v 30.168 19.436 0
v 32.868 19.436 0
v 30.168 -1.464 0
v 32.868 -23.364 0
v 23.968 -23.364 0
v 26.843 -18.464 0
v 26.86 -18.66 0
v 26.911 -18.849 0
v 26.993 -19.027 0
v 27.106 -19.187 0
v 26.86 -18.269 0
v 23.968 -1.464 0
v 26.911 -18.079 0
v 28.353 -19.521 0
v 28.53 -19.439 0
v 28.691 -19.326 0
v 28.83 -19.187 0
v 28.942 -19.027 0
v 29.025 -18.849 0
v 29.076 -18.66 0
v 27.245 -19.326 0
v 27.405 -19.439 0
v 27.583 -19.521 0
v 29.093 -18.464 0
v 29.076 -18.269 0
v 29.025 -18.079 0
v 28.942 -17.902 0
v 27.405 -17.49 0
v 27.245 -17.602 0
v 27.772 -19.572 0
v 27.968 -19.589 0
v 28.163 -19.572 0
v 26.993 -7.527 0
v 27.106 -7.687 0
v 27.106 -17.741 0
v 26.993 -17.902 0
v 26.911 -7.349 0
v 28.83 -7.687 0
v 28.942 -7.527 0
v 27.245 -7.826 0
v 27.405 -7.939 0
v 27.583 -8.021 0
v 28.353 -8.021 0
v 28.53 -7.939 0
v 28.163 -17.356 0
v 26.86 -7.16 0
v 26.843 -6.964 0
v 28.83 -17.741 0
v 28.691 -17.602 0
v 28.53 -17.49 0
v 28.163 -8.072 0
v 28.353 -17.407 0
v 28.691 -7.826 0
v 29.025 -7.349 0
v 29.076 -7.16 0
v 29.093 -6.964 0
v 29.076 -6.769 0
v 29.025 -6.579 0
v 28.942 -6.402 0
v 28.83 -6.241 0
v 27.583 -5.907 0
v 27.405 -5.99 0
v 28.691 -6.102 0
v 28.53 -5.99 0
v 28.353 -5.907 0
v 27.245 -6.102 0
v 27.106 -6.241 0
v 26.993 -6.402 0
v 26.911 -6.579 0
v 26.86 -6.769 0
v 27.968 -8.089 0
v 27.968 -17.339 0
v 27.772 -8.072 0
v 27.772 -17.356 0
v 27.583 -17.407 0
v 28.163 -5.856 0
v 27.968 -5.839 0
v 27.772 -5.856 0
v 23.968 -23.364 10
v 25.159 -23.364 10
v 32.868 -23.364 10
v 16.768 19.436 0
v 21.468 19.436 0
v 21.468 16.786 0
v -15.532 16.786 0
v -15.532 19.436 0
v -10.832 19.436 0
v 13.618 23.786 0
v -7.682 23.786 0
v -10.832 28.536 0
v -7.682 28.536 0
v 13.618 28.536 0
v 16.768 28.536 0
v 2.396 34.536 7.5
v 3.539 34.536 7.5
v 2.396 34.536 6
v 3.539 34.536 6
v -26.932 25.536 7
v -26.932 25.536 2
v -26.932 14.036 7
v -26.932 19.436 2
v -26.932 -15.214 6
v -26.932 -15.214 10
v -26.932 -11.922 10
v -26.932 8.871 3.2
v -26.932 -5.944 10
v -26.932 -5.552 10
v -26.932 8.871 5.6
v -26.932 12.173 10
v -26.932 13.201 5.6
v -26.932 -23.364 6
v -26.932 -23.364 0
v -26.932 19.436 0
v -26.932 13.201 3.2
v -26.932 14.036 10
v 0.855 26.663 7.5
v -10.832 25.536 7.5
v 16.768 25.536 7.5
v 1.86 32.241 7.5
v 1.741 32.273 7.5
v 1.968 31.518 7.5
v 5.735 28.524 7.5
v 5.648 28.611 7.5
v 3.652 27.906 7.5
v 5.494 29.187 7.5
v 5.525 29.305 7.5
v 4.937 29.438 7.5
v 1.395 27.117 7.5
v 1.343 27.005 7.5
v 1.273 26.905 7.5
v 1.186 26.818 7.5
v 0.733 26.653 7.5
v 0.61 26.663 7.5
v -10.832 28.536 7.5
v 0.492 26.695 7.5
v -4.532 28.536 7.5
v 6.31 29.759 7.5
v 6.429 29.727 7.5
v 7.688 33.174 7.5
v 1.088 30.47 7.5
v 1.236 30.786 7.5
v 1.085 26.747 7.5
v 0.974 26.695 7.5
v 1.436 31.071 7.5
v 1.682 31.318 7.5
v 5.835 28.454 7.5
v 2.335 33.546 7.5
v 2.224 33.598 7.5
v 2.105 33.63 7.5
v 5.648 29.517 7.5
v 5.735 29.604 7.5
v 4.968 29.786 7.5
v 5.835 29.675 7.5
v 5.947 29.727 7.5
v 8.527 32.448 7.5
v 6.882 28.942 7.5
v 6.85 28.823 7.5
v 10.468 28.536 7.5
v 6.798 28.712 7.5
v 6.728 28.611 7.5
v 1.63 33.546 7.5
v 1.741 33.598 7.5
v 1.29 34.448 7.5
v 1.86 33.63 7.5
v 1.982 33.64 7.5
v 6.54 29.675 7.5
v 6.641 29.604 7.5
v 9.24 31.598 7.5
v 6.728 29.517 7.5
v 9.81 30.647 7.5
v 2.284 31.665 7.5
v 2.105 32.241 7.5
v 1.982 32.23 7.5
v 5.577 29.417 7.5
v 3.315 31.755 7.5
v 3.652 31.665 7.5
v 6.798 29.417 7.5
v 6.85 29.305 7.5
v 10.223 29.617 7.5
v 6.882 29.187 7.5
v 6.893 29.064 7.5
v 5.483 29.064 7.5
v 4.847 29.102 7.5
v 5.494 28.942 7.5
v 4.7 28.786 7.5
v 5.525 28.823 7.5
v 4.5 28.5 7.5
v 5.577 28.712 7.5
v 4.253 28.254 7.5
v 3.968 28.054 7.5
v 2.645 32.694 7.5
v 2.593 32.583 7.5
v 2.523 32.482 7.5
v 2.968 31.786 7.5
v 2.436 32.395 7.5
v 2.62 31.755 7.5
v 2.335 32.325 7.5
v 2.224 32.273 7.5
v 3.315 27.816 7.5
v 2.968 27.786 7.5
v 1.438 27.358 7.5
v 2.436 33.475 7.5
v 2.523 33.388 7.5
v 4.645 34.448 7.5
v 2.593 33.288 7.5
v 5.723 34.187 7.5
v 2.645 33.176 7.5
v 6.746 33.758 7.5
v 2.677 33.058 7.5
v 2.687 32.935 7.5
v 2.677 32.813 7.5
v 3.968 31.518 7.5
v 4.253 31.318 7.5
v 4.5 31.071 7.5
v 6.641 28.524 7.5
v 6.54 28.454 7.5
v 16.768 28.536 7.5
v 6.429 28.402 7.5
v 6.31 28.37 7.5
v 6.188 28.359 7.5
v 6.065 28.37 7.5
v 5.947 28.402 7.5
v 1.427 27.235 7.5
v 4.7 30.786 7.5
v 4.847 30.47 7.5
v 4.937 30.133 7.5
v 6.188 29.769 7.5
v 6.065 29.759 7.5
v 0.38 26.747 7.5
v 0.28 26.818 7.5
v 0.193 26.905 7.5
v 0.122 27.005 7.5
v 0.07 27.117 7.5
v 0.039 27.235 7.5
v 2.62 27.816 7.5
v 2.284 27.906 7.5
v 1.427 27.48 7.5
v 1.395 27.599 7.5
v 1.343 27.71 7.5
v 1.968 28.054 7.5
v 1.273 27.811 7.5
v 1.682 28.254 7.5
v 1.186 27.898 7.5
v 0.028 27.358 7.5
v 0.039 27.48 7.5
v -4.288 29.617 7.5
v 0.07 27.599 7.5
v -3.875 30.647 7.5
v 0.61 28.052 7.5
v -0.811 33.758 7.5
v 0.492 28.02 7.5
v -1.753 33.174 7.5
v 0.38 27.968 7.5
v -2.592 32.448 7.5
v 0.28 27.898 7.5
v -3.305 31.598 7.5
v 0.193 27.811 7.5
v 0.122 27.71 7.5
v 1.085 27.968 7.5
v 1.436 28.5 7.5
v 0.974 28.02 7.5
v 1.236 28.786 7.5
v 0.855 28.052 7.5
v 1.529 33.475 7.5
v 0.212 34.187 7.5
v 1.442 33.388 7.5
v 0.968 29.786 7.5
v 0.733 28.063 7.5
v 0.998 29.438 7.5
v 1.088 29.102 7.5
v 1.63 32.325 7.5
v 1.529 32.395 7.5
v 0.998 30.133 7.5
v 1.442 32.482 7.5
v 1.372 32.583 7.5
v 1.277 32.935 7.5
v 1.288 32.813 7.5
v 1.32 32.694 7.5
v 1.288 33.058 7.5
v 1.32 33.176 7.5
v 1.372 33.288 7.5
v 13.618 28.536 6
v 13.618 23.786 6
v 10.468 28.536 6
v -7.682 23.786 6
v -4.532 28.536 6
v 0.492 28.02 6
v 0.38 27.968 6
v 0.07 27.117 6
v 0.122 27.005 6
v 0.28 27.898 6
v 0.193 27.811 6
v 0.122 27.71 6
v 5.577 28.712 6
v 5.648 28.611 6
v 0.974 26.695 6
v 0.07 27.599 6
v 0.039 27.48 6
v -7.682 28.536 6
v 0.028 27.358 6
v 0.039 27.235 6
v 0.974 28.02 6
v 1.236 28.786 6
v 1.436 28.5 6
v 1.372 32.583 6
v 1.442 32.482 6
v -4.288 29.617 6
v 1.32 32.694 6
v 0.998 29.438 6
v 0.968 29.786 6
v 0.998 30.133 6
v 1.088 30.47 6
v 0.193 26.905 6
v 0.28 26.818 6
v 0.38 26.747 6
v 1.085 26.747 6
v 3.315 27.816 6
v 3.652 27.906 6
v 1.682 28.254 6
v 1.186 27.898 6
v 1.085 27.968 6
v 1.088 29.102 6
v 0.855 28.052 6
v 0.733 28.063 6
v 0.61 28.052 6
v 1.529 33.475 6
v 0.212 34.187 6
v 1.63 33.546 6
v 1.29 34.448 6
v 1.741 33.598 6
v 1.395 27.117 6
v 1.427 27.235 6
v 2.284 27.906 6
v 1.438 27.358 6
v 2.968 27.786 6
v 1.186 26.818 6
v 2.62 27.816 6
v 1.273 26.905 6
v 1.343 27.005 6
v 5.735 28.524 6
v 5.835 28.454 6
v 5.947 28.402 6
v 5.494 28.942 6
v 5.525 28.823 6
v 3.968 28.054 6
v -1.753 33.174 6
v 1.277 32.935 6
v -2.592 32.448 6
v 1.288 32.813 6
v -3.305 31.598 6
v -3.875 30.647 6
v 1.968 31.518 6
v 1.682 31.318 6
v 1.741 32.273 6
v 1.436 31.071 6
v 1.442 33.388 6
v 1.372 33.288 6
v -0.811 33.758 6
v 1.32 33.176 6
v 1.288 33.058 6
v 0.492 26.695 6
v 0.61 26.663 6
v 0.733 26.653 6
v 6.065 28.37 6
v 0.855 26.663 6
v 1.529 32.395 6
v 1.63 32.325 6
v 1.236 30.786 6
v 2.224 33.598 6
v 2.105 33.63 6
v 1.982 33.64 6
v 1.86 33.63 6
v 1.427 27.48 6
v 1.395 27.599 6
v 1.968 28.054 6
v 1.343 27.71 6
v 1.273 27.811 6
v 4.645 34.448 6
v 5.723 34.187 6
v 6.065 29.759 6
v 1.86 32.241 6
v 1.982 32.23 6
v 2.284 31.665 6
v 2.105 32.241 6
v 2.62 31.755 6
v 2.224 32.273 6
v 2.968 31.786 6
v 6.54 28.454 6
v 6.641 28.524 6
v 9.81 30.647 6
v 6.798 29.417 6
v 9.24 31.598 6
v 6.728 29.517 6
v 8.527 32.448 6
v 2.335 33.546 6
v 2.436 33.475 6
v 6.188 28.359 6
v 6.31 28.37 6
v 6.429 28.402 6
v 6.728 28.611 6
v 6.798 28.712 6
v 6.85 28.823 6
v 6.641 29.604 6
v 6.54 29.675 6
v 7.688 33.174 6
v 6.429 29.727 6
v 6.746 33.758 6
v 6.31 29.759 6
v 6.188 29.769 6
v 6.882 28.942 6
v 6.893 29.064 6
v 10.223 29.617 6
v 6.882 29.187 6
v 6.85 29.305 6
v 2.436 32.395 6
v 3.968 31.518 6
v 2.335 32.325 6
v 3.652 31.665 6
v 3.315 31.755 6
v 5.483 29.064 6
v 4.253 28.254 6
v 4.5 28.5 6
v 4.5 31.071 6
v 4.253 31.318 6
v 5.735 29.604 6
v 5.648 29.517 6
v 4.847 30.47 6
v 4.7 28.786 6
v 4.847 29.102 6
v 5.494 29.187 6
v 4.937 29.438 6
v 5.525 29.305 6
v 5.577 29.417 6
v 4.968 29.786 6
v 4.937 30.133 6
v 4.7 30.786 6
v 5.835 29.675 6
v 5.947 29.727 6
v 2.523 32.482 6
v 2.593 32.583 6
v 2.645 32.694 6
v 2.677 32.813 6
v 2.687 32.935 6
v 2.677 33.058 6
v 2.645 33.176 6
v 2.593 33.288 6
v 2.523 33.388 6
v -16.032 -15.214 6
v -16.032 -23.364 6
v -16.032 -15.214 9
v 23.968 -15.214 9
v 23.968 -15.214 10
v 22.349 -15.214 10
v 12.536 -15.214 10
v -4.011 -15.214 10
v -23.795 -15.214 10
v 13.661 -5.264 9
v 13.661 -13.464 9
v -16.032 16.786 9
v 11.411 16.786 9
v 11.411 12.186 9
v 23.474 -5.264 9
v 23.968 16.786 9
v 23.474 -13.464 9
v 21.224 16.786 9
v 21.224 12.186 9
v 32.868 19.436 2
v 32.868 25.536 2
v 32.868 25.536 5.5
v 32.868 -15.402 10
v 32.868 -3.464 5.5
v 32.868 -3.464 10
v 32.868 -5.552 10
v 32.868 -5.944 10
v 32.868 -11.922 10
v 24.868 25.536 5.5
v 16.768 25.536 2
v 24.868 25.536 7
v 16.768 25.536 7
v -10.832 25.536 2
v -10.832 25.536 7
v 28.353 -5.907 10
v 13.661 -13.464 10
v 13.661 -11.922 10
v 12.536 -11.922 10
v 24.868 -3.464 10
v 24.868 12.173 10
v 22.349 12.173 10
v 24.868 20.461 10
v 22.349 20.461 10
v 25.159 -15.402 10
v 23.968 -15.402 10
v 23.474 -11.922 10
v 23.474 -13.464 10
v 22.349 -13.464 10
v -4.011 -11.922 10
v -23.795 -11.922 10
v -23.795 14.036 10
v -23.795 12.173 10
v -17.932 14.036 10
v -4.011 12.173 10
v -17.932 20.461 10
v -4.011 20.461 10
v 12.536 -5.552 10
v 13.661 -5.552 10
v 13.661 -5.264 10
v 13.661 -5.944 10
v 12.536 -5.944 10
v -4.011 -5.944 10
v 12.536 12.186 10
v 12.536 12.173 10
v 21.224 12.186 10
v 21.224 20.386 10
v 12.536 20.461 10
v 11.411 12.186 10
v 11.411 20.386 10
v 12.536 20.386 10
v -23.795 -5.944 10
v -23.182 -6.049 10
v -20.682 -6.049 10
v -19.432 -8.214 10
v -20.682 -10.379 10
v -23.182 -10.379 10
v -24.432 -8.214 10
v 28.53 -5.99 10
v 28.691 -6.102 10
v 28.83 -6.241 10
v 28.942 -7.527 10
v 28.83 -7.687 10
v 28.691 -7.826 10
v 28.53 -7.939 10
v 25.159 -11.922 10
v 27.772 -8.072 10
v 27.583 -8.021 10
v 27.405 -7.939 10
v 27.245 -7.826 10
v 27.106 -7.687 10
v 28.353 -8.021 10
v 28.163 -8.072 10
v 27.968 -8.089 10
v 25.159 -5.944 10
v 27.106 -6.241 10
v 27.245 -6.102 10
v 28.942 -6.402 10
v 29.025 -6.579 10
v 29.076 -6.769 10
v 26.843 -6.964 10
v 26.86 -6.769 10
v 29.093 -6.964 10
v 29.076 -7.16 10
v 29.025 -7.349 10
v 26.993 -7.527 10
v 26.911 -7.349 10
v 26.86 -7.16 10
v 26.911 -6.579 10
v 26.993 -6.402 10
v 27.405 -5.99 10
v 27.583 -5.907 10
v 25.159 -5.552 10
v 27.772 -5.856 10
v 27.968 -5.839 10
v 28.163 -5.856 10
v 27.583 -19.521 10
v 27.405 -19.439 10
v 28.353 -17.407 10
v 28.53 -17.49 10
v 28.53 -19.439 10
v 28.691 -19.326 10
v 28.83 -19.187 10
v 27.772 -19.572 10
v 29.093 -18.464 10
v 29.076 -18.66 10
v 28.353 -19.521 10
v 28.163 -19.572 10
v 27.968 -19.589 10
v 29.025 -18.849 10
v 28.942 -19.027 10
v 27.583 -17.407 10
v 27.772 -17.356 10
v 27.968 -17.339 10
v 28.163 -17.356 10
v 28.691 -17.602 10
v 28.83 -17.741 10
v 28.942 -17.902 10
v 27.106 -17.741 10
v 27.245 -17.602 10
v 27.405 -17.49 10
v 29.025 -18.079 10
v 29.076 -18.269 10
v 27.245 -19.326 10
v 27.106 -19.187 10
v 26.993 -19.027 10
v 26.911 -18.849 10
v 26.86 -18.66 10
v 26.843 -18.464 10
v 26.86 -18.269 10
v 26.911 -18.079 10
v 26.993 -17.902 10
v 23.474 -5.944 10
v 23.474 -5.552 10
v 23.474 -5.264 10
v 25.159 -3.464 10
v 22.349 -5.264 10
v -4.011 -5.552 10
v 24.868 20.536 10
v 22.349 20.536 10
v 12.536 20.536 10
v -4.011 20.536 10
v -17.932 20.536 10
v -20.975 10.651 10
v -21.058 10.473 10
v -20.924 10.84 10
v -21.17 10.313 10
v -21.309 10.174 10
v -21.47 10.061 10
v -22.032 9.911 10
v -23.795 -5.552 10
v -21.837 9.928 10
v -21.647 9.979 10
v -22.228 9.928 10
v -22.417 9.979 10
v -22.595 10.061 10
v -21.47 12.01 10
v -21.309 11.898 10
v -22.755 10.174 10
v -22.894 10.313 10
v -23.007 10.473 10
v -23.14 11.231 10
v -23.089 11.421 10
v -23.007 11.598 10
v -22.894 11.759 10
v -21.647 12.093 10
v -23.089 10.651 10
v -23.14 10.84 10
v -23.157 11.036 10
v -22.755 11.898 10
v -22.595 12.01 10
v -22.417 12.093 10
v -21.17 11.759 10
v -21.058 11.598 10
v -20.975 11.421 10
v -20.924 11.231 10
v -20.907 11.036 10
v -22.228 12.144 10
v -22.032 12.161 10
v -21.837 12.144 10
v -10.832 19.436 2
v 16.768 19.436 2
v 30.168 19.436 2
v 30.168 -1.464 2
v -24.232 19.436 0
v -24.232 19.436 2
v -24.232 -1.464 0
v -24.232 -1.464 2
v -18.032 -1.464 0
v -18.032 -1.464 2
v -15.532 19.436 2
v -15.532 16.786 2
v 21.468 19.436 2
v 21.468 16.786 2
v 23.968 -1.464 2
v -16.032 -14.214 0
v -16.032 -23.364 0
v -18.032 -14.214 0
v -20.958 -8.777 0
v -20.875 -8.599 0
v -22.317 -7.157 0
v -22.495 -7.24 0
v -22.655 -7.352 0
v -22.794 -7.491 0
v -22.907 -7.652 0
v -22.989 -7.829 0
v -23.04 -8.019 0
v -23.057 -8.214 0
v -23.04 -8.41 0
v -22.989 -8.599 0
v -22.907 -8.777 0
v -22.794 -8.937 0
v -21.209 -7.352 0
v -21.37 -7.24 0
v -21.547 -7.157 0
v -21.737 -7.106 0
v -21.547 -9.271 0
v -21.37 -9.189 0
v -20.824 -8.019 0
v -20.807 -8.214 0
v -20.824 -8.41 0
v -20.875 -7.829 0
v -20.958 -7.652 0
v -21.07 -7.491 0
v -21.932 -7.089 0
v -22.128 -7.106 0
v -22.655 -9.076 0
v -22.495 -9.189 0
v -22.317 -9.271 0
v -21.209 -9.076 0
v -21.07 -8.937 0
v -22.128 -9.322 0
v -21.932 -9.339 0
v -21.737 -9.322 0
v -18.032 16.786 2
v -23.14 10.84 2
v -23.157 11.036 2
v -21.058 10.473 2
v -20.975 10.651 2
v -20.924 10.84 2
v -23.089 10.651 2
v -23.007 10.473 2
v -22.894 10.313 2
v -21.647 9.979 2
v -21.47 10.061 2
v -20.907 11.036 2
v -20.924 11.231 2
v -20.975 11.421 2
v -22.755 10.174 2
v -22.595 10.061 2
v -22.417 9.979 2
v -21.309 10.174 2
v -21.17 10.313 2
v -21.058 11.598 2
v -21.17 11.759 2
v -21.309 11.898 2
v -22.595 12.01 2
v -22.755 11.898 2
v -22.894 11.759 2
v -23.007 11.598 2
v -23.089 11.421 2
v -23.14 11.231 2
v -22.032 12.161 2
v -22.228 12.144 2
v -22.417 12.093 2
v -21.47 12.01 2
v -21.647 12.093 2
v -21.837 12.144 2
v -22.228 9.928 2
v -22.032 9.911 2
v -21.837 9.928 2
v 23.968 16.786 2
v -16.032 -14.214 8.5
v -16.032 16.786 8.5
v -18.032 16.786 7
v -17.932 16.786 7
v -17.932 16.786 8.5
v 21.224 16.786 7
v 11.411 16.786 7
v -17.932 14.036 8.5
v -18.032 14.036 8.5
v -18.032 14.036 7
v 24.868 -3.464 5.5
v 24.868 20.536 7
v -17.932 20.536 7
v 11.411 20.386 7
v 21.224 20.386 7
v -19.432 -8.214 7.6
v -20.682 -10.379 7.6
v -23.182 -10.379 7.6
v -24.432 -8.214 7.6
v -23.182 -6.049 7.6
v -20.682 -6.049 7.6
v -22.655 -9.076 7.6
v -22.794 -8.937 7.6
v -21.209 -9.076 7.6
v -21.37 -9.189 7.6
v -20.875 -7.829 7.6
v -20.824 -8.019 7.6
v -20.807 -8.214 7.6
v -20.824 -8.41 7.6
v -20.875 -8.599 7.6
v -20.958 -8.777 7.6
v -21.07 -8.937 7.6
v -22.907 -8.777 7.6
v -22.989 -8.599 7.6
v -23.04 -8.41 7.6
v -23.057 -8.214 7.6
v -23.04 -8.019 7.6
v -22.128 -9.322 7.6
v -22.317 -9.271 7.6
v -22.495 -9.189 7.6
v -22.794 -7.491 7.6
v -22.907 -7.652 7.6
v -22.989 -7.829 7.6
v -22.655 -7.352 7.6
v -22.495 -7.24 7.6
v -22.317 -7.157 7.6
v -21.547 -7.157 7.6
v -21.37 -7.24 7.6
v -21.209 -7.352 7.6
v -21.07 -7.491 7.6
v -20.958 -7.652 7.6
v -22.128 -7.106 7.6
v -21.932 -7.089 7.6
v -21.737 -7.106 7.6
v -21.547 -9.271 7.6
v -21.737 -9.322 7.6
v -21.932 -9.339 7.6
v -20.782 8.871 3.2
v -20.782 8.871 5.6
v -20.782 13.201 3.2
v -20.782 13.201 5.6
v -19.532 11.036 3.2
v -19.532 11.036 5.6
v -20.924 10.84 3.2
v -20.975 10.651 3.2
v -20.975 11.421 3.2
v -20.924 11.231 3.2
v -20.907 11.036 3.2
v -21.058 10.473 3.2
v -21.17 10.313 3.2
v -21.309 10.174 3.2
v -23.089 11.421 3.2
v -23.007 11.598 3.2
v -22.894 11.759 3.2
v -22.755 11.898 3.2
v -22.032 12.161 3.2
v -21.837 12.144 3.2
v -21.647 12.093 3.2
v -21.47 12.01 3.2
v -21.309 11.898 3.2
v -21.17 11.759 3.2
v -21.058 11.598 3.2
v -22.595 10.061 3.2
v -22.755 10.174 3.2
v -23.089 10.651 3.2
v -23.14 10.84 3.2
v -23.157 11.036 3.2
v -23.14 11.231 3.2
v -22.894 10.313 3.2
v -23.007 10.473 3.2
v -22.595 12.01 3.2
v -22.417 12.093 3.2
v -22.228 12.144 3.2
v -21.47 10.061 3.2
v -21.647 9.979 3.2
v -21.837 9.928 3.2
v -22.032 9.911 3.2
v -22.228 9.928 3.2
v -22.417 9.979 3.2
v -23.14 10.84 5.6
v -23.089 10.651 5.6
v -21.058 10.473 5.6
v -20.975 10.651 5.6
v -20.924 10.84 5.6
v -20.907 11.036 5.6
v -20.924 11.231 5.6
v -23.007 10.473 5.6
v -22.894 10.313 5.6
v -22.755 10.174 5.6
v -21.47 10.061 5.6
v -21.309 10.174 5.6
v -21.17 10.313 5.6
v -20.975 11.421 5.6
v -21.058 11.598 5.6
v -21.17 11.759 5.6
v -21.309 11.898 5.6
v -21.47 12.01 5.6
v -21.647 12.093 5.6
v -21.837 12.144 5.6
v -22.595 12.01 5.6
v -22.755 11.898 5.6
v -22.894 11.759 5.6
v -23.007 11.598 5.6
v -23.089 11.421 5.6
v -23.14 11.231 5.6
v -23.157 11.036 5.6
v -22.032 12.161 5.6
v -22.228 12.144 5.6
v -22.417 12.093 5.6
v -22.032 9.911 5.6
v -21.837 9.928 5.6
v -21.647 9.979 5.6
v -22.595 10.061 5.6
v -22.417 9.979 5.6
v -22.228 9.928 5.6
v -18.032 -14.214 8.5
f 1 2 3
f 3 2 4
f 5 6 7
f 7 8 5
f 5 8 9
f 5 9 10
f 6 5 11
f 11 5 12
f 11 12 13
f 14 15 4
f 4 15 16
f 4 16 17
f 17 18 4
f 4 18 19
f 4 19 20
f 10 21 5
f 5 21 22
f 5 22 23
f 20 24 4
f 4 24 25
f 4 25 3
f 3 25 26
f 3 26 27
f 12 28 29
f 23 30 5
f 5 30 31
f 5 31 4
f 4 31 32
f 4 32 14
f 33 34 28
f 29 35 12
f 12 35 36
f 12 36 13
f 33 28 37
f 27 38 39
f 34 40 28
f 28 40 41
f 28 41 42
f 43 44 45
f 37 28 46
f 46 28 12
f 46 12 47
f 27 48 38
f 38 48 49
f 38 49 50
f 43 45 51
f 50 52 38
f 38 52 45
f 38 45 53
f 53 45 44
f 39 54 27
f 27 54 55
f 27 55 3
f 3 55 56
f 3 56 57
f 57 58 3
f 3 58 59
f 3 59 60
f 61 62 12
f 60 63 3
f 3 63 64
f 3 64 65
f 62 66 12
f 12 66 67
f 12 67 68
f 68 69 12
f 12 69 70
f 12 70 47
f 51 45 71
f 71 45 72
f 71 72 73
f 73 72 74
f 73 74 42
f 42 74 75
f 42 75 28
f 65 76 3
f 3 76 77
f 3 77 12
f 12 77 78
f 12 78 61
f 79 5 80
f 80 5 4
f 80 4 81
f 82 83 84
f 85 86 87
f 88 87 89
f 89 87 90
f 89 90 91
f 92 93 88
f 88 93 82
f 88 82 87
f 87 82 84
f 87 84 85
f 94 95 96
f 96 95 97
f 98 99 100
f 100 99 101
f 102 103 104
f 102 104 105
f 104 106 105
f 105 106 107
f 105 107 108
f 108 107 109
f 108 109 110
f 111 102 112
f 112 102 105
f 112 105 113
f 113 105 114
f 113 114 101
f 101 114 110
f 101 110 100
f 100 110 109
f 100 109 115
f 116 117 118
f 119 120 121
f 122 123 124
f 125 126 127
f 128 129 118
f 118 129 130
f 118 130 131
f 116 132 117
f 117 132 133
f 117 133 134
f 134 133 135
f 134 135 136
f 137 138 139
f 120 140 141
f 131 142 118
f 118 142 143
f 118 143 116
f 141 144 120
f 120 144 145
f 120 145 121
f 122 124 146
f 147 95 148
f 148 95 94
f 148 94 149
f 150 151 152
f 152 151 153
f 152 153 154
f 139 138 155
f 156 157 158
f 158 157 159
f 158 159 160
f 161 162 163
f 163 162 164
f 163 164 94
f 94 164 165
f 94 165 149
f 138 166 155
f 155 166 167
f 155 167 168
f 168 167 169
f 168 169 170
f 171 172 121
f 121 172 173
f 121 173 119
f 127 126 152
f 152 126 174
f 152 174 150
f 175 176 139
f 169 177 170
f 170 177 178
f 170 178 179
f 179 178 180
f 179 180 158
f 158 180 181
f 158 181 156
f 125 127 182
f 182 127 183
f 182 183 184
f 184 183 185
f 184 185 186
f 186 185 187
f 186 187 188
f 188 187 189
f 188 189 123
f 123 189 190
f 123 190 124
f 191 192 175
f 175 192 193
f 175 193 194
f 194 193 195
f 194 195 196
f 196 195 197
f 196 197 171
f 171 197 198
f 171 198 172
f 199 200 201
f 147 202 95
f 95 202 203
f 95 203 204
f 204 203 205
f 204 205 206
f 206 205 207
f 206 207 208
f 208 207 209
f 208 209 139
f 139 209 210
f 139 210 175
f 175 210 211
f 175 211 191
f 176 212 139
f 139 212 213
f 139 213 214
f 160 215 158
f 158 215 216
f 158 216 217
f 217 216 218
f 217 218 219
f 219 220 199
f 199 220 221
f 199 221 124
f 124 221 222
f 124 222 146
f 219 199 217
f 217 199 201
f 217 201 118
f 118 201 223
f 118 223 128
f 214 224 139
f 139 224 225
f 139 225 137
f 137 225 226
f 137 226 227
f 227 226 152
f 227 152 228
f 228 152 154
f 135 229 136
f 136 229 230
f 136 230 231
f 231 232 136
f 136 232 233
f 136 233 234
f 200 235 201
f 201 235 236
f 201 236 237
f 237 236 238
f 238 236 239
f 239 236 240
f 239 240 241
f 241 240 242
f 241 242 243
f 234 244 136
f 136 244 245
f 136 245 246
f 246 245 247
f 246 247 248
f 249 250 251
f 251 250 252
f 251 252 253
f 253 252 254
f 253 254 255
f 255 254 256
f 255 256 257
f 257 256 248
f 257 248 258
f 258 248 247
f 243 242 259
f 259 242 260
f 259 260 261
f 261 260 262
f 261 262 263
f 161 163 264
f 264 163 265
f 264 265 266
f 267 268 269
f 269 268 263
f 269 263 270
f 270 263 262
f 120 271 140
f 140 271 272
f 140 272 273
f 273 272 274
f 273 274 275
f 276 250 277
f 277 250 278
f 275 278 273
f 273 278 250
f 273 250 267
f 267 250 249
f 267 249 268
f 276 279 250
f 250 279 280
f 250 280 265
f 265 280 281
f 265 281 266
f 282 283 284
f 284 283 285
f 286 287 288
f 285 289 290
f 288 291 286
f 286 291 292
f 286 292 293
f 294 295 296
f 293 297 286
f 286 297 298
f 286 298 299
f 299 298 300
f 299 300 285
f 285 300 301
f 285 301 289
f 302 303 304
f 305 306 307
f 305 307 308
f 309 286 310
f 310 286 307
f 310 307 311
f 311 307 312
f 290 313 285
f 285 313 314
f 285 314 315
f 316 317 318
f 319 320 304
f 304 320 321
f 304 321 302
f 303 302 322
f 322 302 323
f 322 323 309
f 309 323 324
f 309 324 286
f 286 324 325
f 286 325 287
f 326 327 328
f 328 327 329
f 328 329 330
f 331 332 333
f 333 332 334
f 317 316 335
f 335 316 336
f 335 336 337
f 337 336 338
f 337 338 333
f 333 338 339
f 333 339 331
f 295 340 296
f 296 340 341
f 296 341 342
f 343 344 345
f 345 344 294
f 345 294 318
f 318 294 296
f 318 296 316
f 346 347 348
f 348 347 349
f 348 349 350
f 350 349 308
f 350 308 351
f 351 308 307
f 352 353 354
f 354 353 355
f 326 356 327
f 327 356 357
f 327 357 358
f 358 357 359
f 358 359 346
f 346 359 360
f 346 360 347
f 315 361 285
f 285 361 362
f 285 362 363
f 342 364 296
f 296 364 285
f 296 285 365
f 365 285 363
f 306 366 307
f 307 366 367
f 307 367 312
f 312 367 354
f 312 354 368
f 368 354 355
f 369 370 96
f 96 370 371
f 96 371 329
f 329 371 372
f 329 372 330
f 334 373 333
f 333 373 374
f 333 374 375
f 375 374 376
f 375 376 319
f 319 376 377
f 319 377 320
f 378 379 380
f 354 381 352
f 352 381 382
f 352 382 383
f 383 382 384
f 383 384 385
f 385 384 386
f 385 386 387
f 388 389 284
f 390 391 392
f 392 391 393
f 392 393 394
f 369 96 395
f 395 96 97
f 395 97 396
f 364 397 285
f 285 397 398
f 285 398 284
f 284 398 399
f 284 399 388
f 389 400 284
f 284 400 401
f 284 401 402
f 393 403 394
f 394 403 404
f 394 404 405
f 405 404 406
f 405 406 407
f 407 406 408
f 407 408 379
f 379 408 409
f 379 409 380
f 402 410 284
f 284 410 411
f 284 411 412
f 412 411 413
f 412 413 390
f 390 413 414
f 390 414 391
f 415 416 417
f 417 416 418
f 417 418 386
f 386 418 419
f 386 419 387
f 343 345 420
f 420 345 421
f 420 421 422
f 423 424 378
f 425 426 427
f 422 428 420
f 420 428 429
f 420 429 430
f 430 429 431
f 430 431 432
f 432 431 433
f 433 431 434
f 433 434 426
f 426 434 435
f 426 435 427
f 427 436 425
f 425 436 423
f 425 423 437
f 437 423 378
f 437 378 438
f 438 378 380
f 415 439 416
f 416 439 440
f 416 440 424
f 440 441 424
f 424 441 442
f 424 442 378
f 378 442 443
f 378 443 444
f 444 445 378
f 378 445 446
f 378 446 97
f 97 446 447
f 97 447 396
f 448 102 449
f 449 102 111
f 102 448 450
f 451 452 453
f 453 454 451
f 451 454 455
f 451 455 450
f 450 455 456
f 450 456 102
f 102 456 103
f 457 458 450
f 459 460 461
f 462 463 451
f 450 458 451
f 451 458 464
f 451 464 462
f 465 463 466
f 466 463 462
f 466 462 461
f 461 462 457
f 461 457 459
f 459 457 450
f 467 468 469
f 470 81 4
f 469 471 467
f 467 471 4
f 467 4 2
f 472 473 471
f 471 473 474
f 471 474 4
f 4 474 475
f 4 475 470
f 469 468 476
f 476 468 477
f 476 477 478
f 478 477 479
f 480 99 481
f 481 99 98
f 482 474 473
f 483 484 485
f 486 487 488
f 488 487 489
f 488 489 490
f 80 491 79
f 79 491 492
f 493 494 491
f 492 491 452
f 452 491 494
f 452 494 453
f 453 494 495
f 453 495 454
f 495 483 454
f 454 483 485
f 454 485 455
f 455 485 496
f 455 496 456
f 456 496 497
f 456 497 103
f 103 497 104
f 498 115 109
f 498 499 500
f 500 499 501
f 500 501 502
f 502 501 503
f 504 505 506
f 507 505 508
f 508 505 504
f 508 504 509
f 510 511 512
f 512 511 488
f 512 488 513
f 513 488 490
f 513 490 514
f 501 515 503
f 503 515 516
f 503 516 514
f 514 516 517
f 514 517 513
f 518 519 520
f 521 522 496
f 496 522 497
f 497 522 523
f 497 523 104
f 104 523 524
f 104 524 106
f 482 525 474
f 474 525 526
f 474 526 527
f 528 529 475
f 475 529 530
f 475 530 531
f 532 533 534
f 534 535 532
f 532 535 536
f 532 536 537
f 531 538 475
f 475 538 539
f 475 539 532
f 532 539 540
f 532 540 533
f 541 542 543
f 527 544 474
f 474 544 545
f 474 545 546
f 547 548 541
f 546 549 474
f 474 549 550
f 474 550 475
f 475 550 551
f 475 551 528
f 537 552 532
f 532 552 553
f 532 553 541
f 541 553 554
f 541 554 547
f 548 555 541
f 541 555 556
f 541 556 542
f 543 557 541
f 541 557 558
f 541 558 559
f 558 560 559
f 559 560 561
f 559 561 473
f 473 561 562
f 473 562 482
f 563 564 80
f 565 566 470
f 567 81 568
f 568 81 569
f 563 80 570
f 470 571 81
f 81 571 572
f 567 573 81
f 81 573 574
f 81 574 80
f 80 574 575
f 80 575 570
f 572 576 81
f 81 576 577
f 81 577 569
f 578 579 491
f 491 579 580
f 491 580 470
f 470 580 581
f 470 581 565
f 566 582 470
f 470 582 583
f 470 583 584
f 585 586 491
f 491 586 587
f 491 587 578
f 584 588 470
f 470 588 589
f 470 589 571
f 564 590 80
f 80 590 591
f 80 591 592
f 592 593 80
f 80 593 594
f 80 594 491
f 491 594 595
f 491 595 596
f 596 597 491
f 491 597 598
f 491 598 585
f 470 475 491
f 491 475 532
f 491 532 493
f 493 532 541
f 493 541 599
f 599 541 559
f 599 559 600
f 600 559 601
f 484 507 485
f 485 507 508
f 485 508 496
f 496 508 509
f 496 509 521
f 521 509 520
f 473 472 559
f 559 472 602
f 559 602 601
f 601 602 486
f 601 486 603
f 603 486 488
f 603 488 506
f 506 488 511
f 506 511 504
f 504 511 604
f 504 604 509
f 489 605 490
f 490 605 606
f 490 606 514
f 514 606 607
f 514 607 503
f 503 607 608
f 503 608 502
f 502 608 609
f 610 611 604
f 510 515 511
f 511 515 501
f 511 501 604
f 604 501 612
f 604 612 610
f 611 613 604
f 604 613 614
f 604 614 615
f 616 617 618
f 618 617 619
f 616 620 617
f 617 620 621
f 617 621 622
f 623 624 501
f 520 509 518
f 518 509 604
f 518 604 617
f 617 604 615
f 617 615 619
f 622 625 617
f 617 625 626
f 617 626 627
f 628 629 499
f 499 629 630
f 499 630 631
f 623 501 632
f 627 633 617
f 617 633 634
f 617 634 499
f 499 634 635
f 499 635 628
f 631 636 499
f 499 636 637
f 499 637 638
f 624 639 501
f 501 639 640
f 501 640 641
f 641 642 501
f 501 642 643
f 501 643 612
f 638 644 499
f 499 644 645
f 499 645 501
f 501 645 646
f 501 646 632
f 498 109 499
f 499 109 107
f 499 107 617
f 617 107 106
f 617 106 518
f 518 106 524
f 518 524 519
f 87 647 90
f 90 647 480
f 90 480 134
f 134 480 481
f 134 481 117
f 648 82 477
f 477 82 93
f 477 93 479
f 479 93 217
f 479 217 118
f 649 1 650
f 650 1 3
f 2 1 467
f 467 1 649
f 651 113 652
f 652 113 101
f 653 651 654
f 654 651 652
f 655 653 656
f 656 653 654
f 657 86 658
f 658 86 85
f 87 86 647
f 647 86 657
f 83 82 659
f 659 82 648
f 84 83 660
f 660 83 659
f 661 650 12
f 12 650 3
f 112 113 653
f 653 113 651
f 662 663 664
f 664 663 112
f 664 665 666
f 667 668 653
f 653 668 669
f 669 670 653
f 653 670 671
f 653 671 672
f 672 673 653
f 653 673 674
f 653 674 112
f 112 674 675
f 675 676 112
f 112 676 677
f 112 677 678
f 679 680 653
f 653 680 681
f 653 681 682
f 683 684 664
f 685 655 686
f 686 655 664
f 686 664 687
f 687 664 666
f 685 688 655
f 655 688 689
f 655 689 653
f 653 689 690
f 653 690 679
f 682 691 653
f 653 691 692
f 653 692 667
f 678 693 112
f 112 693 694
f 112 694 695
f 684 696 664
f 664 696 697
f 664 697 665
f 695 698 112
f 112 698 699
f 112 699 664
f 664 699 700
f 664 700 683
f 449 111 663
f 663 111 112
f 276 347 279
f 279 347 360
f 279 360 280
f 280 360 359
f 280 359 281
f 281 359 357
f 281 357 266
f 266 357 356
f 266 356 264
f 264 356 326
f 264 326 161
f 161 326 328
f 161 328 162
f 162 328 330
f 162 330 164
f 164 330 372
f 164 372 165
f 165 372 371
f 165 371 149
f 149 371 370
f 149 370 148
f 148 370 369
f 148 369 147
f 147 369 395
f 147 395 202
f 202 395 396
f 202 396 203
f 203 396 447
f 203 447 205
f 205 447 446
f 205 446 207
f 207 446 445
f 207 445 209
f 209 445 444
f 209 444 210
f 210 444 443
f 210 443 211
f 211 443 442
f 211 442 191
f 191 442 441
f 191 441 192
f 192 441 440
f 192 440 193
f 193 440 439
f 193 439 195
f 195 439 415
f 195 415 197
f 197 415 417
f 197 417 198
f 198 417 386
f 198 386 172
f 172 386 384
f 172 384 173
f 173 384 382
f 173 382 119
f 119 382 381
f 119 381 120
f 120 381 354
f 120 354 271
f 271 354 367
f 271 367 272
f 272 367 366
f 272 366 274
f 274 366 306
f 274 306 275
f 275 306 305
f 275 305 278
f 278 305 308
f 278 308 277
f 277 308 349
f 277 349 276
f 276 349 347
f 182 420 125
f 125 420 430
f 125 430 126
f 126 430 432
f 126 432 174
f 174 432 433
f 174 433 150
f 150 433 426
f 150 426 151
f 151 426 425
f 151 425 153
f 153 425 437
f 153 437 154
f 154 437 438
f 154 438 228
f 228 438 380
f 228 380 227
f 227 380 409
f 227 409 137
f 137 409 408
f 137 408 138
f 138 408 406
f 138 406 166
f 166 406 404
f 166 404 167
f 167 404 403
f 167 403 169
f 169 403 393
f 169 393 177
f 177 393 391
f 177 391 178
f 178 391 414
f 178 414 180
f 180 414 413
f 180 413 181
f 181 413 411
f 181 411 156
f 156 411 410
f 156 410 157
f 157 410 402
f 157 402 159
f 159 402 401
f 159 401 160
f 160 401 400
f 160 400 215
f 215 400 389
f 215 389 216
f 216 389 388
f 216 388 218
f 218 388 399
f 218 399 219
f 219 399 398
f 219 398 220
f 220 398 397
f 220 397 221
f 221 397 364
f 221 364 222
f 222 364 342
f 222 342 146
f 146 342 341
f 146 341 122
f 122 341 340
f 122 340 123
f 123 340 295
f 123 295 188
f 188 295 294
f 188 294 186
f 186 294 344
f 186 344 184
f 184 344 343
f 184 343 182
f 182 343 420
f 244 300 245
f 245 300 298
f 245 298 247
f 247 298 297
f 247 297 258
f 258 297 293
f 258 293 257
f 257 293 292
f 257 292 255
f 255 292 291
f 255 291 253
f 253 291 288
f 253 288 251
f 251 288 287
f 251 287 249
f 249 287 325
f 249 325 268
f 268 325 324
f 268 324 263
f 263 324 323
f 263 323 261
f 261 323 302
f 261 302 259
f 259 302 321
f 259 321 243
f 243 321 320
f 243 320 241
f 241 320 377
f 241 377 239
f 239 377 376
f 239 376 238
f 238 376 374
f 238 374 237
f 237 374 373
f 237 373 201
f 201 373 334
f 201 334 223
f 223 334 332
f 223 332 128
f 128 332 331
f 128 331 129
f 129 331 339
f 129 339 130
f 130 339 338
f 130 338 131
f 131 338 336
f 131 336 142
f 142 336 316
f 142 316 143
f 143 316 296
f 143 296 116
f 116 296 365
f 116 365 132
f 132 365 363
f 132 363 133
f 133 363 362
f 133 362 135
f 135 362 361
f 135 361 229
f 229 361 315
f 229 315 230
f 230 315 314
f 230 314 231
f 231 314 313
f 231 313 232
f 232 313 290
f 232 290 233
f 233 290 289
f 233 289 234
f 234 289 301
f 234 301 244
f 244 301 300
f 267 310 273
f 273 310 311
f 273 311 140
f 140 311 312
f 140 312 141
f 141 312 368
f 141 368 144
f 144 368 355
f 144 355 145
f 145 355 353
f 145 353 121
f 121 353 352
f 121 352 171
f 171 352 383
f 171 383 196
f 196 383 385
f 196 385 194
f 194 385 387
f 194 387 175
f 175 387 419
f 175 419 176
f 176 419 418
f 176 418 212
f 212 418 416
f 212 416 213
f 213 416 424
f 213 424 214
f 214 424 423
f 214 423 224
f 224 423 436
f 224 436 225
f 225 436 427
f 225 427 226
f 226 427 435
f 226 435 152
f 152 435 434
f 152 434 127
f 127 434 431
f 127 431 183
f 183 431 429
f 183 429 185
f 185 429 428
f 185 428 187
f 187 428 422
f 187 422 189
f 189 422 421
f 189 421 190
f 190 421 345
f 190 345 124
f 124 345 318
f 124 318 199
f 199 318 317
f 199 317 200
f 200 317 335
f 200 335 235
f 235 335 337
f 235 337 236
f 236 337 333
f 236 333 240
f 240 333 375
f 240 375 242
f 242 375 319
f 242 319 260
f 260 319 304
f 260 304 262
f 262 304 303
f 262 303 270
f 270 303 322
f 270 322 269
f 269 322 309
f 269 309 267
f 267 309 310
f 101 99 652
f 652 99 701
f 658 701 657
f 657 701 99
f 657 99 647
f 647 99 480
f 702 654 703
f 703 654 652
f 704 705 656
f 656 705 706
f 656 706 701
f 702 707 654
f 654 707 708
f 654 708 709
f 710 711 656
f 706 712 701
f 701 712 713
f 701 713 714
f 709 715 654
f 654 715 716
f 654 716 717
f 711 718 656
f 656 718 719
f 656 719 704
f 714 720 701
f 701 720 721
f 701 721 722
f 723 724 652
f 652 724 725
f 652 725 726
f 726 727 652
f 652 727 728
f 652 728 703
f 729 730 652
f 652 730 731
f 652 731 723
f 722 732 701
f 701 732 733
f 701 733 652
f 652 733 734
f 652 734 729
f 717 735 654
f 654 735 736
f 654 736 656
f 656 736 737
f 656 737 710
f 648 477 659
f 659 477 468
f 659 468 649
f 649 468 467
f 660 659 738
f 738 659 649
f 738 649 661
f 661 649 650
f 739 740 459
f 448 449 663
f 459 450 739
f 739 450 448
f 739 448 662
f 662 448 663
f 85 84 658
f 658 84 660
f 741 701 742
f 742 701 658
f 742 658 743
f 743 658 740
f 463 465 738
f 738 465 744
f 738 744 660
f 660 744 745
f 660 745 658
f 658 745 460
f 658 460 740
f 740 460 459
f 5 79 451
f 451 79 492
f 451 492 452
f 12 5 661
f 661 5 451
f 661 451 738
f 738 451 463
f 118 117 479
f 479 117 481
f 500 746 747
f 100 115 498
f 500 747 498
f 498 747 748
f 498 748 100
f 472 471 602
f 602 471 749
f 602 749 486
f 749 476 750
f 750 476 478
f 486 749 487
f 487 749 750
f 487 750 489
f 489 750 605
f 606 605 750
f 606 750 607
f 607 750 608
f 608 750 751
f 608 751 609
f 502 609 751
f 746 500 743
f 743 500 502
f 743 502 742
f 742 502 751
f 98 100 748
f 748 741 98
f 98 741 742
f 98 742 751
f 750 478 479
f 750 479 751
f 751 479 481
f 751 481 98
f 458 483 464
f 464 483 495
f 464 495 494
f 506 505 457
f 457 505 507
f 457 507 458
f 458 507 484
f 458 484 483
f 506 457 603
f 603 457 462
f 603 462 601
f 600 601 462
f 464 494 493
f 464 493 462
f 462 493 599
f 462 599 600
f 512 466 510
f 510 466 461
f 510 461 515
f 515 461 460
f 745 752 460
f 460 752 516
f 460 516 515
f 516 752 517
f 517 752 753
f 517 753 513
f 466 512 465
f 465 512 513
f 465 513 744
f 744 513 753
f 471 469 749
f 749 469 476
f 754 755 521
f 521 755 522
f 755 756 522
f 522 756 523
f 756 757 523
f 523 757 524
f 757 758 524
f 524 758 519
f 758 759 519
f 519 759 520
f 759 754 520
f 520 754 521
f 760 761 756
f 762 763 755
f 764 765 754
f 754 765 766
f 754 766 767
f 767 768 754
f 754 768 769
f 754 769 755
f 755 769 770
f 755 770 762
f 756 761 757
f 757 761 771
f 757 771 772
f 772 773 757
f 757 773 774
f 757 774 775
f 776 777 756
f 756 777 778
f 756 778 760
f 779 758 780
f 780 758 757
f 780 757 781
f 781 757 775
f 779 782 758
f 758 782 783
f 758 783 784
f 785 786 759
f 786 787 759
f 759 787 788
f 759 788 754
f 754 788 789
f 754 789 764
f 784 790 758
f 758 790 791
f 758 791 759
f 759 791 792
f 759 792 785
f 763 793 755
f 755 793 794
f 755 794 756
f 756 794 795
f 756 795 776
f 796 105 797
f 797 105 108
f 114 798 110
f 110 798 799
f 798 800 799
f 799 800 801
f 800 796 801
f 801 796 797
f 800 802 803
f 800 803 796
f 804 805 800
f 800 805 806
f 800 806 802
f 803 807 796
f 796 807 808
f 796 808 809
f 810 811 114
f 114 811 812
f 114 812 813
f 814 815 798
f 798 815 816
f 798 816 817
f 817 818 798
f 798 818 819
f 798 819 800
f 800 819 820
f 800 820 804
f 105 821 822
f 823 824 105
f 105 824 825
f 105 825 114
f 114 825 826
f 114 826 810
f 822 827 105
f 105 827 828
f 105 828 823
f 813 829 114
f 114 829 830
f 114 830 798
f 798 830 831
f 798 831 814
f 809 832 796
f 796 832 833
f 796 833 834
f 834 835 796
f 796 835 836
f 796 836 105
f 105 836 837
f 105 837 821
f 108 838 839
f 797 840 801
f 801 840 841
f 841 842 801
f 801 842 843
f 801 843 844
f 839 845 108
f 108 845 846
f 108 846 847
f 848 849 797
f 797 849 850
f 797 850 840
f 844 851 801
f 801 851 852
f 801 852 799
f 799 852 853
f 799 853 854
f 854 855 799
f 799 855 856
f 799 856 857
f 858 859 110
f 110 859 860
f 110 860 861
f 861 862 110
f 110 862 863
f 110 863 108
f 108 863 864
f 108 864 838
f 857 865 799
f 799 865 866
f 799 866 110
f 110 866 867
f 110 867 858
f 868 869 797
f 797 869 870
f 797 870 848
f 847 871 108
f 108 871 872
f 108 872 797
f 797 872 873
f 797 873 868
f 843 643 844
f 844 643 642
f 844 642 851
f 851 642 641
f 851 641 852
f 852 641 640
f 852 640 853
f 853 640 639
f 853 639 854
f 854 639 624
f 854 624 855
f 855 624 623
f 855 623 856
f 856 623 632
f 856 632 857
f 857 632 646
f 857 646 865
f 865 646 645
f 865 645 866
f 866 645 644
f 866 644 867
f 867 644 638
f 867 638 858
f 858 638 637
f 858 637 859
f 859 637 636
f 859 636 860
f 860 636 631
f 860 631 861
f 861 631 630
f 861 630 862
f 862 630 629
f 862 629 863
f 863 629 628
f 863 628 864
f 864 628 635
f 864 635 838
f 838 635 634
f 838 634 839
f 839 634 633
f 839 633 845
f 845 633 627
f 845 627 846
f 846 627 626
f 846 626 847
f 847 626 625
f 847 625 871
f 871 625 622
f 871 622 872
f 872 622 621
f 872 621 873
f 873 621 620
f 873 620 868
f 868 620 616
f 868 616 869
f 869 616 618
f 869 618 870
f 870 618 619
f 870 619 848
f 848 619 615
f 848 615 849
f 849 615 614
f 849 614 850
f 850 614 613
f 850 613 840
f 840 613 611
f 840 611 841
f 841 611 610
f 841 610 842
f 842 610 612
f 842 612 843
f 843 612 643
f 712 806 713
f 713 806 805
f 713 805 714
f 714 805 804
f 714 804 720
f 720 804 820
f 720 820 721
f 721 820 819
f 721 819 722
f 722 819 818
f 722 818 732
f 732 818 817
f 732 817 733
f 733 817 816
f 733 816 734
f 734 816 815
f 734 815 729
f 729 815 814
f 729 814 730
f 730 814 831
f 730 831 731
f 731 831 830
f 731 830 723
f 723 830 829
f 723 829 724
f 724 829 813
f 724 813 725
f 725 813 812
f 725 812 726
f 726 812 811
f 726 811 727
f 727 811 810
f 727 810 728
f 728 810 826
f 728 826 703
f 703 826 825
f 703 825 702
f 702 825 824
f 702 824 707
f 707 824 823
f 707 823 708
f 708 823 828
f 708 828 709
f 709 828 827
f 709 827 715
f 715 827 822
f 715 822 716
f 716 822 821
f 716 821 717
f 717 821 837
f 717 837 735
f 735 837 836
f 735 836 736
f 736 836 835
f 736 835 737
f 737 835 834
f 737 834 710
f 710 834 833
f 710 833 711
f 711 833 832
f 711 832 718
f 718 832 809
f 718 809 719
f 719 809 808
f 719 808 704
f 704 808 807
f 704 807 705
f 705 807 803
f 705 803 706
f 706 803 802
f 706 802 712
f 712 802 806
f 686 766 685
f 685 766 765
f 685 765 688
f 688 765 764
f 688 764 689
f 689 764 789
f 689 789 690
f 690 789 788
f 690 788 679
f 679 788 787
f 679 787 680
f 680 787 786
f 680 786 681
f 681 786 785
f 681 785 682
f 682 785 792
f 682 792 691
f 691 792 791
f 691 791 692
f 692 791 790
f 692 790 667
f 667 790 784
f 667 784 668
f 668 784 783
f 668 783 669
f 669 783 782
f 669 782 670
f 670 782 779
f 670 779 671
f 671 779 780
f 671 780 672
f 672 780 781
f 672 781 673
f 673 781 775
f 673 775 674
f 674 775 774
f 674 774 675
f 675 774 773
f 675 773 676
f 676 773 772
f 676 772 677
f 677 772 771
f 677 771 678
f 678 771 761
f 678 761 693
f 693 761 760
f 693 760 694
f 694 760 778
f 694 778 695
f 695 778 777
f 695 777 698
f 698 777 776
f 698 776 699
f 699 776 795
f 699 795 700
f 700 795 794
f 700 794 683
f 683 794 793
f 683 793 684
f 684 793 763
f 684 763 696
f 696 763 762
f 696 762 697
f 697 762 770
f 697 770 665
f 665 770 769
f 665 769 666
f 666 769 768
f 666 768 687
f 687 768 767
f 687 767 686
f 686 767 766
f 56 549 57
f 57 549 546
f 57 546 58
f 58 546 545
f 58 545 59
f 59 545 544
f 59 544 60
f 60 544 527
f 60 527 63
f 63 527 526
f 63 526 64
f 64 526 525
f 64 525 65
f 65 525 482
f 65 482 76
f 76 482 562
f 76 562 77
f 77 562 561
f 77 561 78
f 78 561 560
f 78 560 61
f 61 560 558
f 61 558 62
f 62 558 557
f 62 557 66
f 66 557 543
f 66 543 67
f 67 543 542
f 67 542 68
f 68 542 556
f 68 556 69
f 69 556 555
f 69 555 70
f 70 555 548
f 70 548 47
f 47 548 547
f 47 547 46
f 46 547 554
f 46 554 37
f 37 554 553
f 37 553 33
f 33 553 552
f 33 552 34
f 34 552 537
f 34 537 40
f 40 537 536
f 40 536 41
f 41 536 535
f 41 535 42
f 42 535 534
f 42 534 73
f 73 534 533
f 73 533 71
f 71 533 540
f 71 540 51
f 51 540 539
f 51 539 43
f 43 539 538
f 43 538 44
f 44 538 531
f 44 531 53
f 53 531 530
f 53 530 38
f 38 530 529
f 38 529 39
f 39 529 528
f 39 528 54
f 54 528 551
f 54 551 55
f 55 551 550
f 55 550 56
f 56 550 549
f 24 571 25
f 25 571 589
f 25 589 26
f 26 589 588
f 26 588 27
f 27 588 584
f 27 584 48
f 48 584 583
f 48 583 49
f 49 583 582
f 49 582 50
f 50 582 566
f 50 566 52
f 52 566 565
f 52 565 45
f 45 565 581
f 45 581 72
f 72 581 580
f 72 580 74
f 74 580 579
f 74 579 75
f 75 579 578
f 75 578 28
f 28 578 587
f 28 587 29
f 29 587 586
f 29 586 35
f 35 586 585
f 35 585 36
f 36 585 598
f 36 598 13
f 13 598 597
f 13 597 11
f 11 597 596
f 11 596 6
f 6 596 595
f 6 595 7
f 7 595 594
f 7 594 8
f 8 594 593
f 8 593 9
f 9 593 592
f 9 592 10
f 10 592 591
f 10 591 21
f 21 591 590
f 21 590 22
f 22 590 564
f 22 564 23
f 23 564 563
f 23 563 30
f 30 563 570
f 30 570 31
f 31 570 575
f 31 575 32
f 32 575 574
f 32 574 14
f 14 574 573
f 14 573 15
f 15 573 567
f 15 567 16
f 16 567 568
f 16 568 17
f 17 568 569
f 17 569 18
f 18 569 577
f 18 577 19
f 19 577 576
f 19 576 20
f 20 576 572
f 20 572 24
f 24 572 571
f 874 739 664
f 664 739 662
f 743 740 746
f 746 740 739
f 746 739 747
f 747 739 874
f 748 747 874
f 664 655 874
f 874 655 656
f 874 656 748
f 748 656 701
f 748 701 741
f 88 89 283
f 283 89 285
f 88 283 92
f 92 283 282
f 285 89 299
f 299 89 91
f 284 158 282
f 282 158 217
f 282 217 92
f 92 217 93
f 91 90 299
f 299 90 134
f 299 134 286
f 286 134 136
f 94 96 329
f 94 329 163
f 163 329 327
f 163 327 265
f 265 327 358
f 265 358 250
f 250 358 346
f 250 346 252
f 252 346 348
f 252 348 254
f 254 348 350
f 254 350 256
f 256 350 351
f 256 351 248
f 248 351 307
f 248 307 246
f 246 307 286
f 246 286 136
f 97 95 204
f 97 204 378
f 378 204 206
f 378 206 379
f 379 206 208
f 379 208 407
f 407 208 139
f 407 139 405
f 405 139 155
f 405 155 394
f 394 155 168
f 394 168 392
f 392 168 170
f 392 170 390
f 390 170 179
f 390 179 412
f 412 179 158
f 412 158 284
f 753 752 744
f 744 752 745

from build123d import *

# Parameters (mm, degrees)
SKETCH1_R           = 6
BOSS_EXTRUDE1_DEPTH = 6
SKETCH2_W           = 27.6
SKETCH2_H           = 16.6
SKETCH2_R           = 6
SKETCH2_R_2         = 0.705
SKETCH2_R_3         = 2
BOSS_EXTRUDE2_DEPTH = 1.5
BOSS_EXTRUDE3_START = -4
BOSS_EXTRUDE3_DEPTH = 4
SKETCH5_W           = 40
SKETCH5_H           = 38.75
CUT_EXTRUDE1_DEPTH  = 50.346876803
SKETCH6_W           = 59.8
SKETCH6_H           = 40.75
BOSS_EXTRUDE4_DEPTH = 4
SKETCH7_W           = 40
SKETCH7_H           = 38.75
CUT_EXTRUDE2_DEPTH  = 3
SKETCH8_W           = 10.5
SKETCH8_H           = 8.15
CUT_EXTRUDE3_DEPTH  = 3
SKETCH8_3_W         = 9.813424901
SKETCH8_3_H         = 8.2
CUT_EXTRUDE4_DEPTH  = 1
CUT_EXTRUDE5_DEPTH  = 2
SKETCH10_W          = 8.9
SKETCH10_H          = 8.15
BOSS_EXTRUDE5_DEPTH = 4
SKETCH12_W          = 7.5
SKETCH12_H          = 1.5
CUT_EXTRUDE7_DEPTH  = 50.346876803
CUT_EXTRUDE8_DEPTH  = 2.4
CUT_EXTRUDE9_DEPTH  = 2.4
SKETCH16_R          = 1.125
CUT_EXTRUDE10_DEPTH = 50.788193884
SKETCH17_W          = 42
SKETCH17_H          = 31
CUT_EXTRUDE11_DEPTH = 8.5
SKETCH19_W          = 21.3
SKETCH19_H          = 12.25
CUT_EXTRUDE12_DEPTH = 50.141268301
SKETCH20_W          = 3.149886021
SKETCH20_H          = 7.5
SKETCH20_W_2        = 3.150113979
CUT_EXTRUDE13_DEPTH = 50.346876803
FILLET1_R           = 7
SKETCH21_W          = 5
SKETCH21_H          = 1.4
CUT_EXTRUDE14_DEPTH = 50.141268301
SKETCH22_W          = 9.813424901
SKETCH22_H          = 3.6
CUT_EXTRUDE15_DEPTH = 2
SKETCH23_W          = 3.149886021
SKETCH23_H          = 7.5
SKETCH23_W_2        = 3.150113979
CUT_EXTRUDE16_DEPTH = 50.346876803
SKETCH24_W          = 35
SKETCH24_H          = 1.4
CUT_EXTRUDE17_DEPTH = 49.713519689


# Read off the part's stored shape, not the designer's step: Boss-Extrude3
with BuildPart() as part:
    # Sketch1 → Boss-Extrude1 (new body)
    with BuildSketch(Plane.XY):
        Polygon((-10.832250172, 36.035749909), (-10.832250172, 19.435749909), (-15.532250172, 19.435749909), (-15.532250172, -1.464250091), (-24.232250172, -1.464250091), (-24.232250172, 19.435749909), (-26.932250172, 19.435749909), (-26.932250172, -23.364250091), (32.867749828, -23.364250091), (32.867749828, 19.435749909), (30.167749828, 19.435749909), (30.167749828, -1.464250091), (21.467749828, -1.464250091), (21.467749828, 19.435749909), (16.767749828, 19.435749909), (16.767749828, 36.035749909), align=None)
        with Locations((2.967749828, 29.785749909)):
            Circle(SKETCH1_R, mode=Mode.SUBTRACT)
    extrude(amount=BOSS_EXTRUDE1_DEPTH)

    # Sketch2 → Boss-Extrude2 (add)
    # profile 1 of 2: a face of its own
    with BuildSketch(Plane.XY.offset(6)):
        with Locations((2.967749828, 27.735749909)):
            Rectangle(SKETCH2_W, SKETCH2_H)
        with Locations((2.967749828, 29.785749909)):
            Circle(SKETCH2_R, mode=Mode.SUBTRACT)
    # profile 2 of 2: a face of its own
    with BuildSketch(Plane.XY.offset(6)):
        with Locations((2.967749828, 29.785749909)):
            Circle(SKETCH2_R)
        with Locations((0.732850657, 27.357741339)):
            Circle(SKETCH2_R_2, mode=Mode.SUBTRACT)
        with Locations((6.187916827, 29.064275155)):
            Circle(SKETCH2_R_2, mode=Mode.SUBTRACT)
        with Locations((1.982482071, 32.935233827)):
            Circle(SKETCH2_R_2, mode=Mode.SUBTRACT)
        with Locations((2.967749828, 29.785749909)):
            Circle(SKETCH2_R_3, mode=Mode.SUBTRACT)
    extrude(amount=BOSS_EXTRUDE2_DEPTH)

    # Boss-Extrude3 outline → Boss-Extrude3 (add)
    with BuildSketch(Plane.XY.offset(6).offset(BOSS_EXTRUDE3_START)):
        Polygon((32.867749828, 19.435749909), (32.867749828, 25.535749909), (16.767749828, 25.535749909), (16.767749828, 19.435749909), (21.467749828, 19.435749909), (21.467749828, -1.464250091), (30.167749828, -1.464250091), (30.167749828, 19.435749909), align=None)
        Polygon((-26.932250172, 25.535749909), (-26.932250172, 19.435749909), (-24.232250172, 19.435749909), (-24.232250172, -1.464250091), (-15.532250172, -1.464250091), (-15.532250172, 19.435749909), (-10.832250172, 19.435749909), (-10.832250172, 25.535749909), align=None)
    extrude(amount=BOSS_EXTRUDE3_DEPTH)

    # Sketch5 → Cut-Extrude1 (cut, through all)
    with BuildSketch(Plane(origin=(0, 0, 0), x_dir=(-1, 0, 0), z_dir=(0, 0, -1))):
        with Locations((-3.967749828, -2.589250091)):
            Rectangle(SKETCH5_W, SKETCH5_H)
    extrude(amount=-CUT_EXTRUDE1_DEPTH, mode=Mode.SUBTRACT)

    # Sketch6 → Boss-Extrude4 (add)
    with BuildSketch(Plane.XY.offset(6)):
        with Locations((2.967749828, 5.160749909)):
            Rectangle(SKETCH6_W, SKETCH6_H)
    extrude(amount=BOSS_EXTRUDE4_DEPTH)

    # Sketch7 → Cut-Extrude2 (cut)
    with BuildSketch(Plane(origin=(0, 0, 6), x_dir=(-1, 0, 0), z_dir=(0, 0, -1))):
        with Locations((-3.967749828, -2.589250091)):
            Rectangle(SKETCH7_W, SKETCH7_H)
    extrude(amount=-CUT_EXTRUDE2_DEPTH, mode=Mode.SUBTRACT)

    # Sketch8 → Cut-Extrude3 (cut)
    with BuildSketch(Plane.XY.offset(10)):
        Polygon((24.867749828, -3.464250091), (32.867749828, -3.464250091), (32.867749828, 25.535749909), (-26.932250172, 25.535749909), (-26.932250172, 14.035749909), (-17.932250172, 14.035749909), (-17.932250172, 20.535749909), (24.867749828, 20.535749909), align=None)
        with Locations((-21.682250172, -19.289250091)):
            Rectangle(SKETCH8_W, SKETCH8_H)
    extrude(amount=-CUT_EXTRUDE3_DEPTH, mode=Mode.SUBTRACT)

    # Sketch8<3> → Cut-Extrude4 (cut)
    with BuildSketch(Plane.XY.offset(10)):
        with Locations((16.317749828, 16.285749909)):
            Rectangle(SKETCH8_3_W, SKETCH8_3_H)
        with Locations((18.567749828, -9.364250091)):
            Rectangle(SKETCH8_3_W, SKETCH8_3_H)
    extrude(amount=-CUT_EXTRUDE4_DEPTH, mode=Mode.SUBTRACT)

    # Sketch9 → Cut-Extrude5 (cut)
    with BuildSketch(Plane.XY.offset(7.5)):
        Polygon((24.867749828, 20.535749909), (24.867749828, -3.464250091), (32.867749828, -3.464250091), (32.867749828, 25.535749909), (24.867749828, 25.535749909), align=None)
    extrude(amount=-CUT_EXTRUDE5_DEPTH, mode=Mode.SUBTRACT)

    # Sketch10 → Boss-Extrude5 (add)
    with BuildSketch(Plane.XY.offset(6)):
        with Locations((28.417749828, -19.289250091)):
            Rectangle(SKETCH10_W, SKETCH10_H)
    extrude(amount=BOSS_EXTRUDE5_DEPTH)

    # Sketch12 → Cut-Extrude7 (cut, through all)
    with BuildSketch(Plane.XY.offset(7.5)):
        with Locations((-0.78247813, 35.285749909)):
            Rectangle(SKETCH12_W, SKETCH12_H)
        with Locations((6.71752187, 35.285749909)):
            Rectangle(SKETCH12_W, SKETCH12_H)
    extrude(amount=-CUT_EXTRUDE7_DEPTH, mode=Mode.SUBTRACT)

    # Sketch13 → Cut-Extrude8 (cut)
    with BuildSketch(Plane.XY.offset(10)):
        Polygon((-19.432250172, -8.214250091), (-20.682250172, -6.049186582), (-23.182250172, -6.049186582), (-24.432250172, -8.214250091), (-23.182250172, -10.379313601), (-20.682250172, -10.379313601), align=None)
    extrude(amount=-CUT_EXTRUDE8_DEPTH, mode=Mode.SUBTRACT)

    # Sketch15 → Cut-Extrude9 (cut)
    with BuildSketch(Plane(origin=(-203.37180159, 125.682543488, 5.600198), x_dir=(1, 0, 0), z_dir=(0, 0, 1))):
        Polygon((180.089551417, -116.811857089), (182.589551417, -116.811857089), (183.839551417, -114.646793579), (182.589551417, -112.48173007), (180.089551417, -112.48173007), (178.839551417, -114.646793579), align=None)
        Polygon((176.439551417, -112.48173007), (176.439551417, -116.811857089), (180.089551417, -116.811857089), (178.839551417, -114.646793579), (180.089551417, -112.48173007), align=None)
    extrude(amount=-CUT_EXTRUDE9_DEPTH, mode=Mode.SUBTRACT)

    # Sketch16 → Cut-Extrude10 (cut, through all)
    with BuildSketch(Plane.XY.offset(10)):
        with Locations((-21.932250172, -8.214250091)):
            Circle(SKETCH16_R)
        with Locations((-22.032250172, 11.035749909)):
            Circle(SKETCH16_R)
        with Locations((27.967749828, -6.964250091)):
            Circle(SKETCH16_R)
        with Locations((27.967749828, -18.464250091)):
            Circle(SKETCH16_R)
    extrude(amount=-CUT_EXTRUDE10_DEPTH, mode=Mode.SUBTRACT)

    # Sketch17 → Cut-Extrude11 (cut)
    with BuildSketch(Plane(origin=(0, 0, 0), x_dir=(-1, 0, 0), z_dir=(0, 0, -1))):
        with Locations((-2.967749828, 1.285749909)):
            Rectangle(SKETCH17_W, SKETCH17_H)
    extrude(amount=-CUT_EXTRUDE11_DEPTH, mode=Mode.SUBTRACT)

    # Sketch19 → Cut-Extrude12 (cut, through all)
    with BuildSketch(Plane(origin=(0, 0, 6), x_dir=(-1, 0, 0), z_dir=(0, 0, -1))):
        with Locations((-2.967635849, 29.910749909)):
            Rectangle(SKETCH19_W, SKETCH19_H)
    extrude(amount=CUT_EXTRUDE12_DEPTH, mode=Mode.SUBTRACT)

    # Sketch20 → Cut-Extrude13 (cut, through all)
    with BuildSketch(Plane.XY.offset(7.5)):
        with Locations((-6.107421141, 32.285749909)):
            Rectangle(SKETCH20_W, SKETCH20_H)
        with Locations((12.04257886, 32.285749909)):
            Rectangle(SKETCH20_W_2, SKETCH20_H)
    extrude(amount=-CUT_EXTRUDE13_DEPTH, mode=Mode.SUBTRACT)

    # Fillet1
    # the kernel refuses this fillet: 7 mm, written as the material it takes off along each edge
    with BuildSketch(Plane(origin=(-4.53247813, 34.535749909, 24.820508076), x_dir=(0, -1, 0), z_dir=(0, 0, -1))) as fillet1_piece_1:
        with BuildLine():
            CenterArc((7, -6.92820323), FILLET1_R, 98.213210702, 81.786789298)
            Line((0, -6.92820323), (-0.14, -6.92820323))
            Line((-0.14, -6.92820323), (-0.14, 0))
            Line((-0.14, 0), (0, 0.14))
            ThreePointArc((0, 0.14), (3, 0.14), (5.98, 0.138564065))
            Line((5.98, 0.138564065), (6, 0))
        make_face()
    extrude(amount=36.141016151, mode=Mode.SUBTRACT)
    with BuildSketch(Plane(origin=(10.46752187, 34.535749909, 24.820508076), x_dir=(-1, 0, 0), z_dir=(0, 0, -1))) as fillet1_piece_2:
        with BuildLine():
            CenterArc((6.92820323, -7), FILLET1_R, 90, 81.786789298)
            Line((0, -6), (-0.138564065, -5.98))
            ThreePointArc((-0.138564065, -5.98), (-0.14, -3), (-0.14, 0))
            Line((-0.14, 0), (0, 0.14))
            Line((0, 0.14), (6.92820323, 0.14))
            Line((6.92820323, 0.14), (6.92820323, 0))
        make_face()
    extrude(amount=36.141016151, mode=Mode.SUBTRACT)

    # Sketch21 → Cut-Extrude14 (cut, through all)
    with BuildSketch(Plane.XY.offset(6)):
        with Locations((-13.532250172, -22.664250091)):
            Rectangle(SKETCH21_W, SKETCH21_H)
    extrude(amount=-CUT_EXTRUDE14_DEPTH, mode=Mode.SUBTRACT)

    # Sketch22 → Cut-Extrude15 (cut)
    with BuildSketch(Plane.XY.offset(9)):
        with Locations((16.317749828, 18.585749909)):
            Rectangle(SKETCH22_W, SKETCH22_H)
    extrude(amount=-CUT_EXTRUDE15_DEPTH, mode=Mode.SUBTRACT)

    # Sketch23 → Cut-Extrude16 (cut, through all)
    with BuildSketch(Plane.XY.offset(7.5)):
        with Locations((-9.257307161, 32.285749909)):
            Rectangle(SKETCH23_W, SKETCH23_H)
        with Locations((15.192692839, 32.285749909)):
            Rectangle(SKETCH23_W_2, SKETCH23_H)
    extrude(amount=-CUT_EXTRUDE16_DEPTH, mode=Mode.SUBTRACT)

    # Sketch24 → Cut-Extrude17 (cut, through all)
    with BuildSketch(Plane(origin=(0, 0, 0), x_dir=(-1, 0, 0), z_dir=(0, 0, -1))):
        with Locations((-6.467749828, -22.664250091)):
            Rectangle(SKETCH24_W, SKETCH24_H)
    extrude(amount=-CUT_EXTRUDE17_DEPTH, mode=Mode.SUBTRACT)


solid = part.part
